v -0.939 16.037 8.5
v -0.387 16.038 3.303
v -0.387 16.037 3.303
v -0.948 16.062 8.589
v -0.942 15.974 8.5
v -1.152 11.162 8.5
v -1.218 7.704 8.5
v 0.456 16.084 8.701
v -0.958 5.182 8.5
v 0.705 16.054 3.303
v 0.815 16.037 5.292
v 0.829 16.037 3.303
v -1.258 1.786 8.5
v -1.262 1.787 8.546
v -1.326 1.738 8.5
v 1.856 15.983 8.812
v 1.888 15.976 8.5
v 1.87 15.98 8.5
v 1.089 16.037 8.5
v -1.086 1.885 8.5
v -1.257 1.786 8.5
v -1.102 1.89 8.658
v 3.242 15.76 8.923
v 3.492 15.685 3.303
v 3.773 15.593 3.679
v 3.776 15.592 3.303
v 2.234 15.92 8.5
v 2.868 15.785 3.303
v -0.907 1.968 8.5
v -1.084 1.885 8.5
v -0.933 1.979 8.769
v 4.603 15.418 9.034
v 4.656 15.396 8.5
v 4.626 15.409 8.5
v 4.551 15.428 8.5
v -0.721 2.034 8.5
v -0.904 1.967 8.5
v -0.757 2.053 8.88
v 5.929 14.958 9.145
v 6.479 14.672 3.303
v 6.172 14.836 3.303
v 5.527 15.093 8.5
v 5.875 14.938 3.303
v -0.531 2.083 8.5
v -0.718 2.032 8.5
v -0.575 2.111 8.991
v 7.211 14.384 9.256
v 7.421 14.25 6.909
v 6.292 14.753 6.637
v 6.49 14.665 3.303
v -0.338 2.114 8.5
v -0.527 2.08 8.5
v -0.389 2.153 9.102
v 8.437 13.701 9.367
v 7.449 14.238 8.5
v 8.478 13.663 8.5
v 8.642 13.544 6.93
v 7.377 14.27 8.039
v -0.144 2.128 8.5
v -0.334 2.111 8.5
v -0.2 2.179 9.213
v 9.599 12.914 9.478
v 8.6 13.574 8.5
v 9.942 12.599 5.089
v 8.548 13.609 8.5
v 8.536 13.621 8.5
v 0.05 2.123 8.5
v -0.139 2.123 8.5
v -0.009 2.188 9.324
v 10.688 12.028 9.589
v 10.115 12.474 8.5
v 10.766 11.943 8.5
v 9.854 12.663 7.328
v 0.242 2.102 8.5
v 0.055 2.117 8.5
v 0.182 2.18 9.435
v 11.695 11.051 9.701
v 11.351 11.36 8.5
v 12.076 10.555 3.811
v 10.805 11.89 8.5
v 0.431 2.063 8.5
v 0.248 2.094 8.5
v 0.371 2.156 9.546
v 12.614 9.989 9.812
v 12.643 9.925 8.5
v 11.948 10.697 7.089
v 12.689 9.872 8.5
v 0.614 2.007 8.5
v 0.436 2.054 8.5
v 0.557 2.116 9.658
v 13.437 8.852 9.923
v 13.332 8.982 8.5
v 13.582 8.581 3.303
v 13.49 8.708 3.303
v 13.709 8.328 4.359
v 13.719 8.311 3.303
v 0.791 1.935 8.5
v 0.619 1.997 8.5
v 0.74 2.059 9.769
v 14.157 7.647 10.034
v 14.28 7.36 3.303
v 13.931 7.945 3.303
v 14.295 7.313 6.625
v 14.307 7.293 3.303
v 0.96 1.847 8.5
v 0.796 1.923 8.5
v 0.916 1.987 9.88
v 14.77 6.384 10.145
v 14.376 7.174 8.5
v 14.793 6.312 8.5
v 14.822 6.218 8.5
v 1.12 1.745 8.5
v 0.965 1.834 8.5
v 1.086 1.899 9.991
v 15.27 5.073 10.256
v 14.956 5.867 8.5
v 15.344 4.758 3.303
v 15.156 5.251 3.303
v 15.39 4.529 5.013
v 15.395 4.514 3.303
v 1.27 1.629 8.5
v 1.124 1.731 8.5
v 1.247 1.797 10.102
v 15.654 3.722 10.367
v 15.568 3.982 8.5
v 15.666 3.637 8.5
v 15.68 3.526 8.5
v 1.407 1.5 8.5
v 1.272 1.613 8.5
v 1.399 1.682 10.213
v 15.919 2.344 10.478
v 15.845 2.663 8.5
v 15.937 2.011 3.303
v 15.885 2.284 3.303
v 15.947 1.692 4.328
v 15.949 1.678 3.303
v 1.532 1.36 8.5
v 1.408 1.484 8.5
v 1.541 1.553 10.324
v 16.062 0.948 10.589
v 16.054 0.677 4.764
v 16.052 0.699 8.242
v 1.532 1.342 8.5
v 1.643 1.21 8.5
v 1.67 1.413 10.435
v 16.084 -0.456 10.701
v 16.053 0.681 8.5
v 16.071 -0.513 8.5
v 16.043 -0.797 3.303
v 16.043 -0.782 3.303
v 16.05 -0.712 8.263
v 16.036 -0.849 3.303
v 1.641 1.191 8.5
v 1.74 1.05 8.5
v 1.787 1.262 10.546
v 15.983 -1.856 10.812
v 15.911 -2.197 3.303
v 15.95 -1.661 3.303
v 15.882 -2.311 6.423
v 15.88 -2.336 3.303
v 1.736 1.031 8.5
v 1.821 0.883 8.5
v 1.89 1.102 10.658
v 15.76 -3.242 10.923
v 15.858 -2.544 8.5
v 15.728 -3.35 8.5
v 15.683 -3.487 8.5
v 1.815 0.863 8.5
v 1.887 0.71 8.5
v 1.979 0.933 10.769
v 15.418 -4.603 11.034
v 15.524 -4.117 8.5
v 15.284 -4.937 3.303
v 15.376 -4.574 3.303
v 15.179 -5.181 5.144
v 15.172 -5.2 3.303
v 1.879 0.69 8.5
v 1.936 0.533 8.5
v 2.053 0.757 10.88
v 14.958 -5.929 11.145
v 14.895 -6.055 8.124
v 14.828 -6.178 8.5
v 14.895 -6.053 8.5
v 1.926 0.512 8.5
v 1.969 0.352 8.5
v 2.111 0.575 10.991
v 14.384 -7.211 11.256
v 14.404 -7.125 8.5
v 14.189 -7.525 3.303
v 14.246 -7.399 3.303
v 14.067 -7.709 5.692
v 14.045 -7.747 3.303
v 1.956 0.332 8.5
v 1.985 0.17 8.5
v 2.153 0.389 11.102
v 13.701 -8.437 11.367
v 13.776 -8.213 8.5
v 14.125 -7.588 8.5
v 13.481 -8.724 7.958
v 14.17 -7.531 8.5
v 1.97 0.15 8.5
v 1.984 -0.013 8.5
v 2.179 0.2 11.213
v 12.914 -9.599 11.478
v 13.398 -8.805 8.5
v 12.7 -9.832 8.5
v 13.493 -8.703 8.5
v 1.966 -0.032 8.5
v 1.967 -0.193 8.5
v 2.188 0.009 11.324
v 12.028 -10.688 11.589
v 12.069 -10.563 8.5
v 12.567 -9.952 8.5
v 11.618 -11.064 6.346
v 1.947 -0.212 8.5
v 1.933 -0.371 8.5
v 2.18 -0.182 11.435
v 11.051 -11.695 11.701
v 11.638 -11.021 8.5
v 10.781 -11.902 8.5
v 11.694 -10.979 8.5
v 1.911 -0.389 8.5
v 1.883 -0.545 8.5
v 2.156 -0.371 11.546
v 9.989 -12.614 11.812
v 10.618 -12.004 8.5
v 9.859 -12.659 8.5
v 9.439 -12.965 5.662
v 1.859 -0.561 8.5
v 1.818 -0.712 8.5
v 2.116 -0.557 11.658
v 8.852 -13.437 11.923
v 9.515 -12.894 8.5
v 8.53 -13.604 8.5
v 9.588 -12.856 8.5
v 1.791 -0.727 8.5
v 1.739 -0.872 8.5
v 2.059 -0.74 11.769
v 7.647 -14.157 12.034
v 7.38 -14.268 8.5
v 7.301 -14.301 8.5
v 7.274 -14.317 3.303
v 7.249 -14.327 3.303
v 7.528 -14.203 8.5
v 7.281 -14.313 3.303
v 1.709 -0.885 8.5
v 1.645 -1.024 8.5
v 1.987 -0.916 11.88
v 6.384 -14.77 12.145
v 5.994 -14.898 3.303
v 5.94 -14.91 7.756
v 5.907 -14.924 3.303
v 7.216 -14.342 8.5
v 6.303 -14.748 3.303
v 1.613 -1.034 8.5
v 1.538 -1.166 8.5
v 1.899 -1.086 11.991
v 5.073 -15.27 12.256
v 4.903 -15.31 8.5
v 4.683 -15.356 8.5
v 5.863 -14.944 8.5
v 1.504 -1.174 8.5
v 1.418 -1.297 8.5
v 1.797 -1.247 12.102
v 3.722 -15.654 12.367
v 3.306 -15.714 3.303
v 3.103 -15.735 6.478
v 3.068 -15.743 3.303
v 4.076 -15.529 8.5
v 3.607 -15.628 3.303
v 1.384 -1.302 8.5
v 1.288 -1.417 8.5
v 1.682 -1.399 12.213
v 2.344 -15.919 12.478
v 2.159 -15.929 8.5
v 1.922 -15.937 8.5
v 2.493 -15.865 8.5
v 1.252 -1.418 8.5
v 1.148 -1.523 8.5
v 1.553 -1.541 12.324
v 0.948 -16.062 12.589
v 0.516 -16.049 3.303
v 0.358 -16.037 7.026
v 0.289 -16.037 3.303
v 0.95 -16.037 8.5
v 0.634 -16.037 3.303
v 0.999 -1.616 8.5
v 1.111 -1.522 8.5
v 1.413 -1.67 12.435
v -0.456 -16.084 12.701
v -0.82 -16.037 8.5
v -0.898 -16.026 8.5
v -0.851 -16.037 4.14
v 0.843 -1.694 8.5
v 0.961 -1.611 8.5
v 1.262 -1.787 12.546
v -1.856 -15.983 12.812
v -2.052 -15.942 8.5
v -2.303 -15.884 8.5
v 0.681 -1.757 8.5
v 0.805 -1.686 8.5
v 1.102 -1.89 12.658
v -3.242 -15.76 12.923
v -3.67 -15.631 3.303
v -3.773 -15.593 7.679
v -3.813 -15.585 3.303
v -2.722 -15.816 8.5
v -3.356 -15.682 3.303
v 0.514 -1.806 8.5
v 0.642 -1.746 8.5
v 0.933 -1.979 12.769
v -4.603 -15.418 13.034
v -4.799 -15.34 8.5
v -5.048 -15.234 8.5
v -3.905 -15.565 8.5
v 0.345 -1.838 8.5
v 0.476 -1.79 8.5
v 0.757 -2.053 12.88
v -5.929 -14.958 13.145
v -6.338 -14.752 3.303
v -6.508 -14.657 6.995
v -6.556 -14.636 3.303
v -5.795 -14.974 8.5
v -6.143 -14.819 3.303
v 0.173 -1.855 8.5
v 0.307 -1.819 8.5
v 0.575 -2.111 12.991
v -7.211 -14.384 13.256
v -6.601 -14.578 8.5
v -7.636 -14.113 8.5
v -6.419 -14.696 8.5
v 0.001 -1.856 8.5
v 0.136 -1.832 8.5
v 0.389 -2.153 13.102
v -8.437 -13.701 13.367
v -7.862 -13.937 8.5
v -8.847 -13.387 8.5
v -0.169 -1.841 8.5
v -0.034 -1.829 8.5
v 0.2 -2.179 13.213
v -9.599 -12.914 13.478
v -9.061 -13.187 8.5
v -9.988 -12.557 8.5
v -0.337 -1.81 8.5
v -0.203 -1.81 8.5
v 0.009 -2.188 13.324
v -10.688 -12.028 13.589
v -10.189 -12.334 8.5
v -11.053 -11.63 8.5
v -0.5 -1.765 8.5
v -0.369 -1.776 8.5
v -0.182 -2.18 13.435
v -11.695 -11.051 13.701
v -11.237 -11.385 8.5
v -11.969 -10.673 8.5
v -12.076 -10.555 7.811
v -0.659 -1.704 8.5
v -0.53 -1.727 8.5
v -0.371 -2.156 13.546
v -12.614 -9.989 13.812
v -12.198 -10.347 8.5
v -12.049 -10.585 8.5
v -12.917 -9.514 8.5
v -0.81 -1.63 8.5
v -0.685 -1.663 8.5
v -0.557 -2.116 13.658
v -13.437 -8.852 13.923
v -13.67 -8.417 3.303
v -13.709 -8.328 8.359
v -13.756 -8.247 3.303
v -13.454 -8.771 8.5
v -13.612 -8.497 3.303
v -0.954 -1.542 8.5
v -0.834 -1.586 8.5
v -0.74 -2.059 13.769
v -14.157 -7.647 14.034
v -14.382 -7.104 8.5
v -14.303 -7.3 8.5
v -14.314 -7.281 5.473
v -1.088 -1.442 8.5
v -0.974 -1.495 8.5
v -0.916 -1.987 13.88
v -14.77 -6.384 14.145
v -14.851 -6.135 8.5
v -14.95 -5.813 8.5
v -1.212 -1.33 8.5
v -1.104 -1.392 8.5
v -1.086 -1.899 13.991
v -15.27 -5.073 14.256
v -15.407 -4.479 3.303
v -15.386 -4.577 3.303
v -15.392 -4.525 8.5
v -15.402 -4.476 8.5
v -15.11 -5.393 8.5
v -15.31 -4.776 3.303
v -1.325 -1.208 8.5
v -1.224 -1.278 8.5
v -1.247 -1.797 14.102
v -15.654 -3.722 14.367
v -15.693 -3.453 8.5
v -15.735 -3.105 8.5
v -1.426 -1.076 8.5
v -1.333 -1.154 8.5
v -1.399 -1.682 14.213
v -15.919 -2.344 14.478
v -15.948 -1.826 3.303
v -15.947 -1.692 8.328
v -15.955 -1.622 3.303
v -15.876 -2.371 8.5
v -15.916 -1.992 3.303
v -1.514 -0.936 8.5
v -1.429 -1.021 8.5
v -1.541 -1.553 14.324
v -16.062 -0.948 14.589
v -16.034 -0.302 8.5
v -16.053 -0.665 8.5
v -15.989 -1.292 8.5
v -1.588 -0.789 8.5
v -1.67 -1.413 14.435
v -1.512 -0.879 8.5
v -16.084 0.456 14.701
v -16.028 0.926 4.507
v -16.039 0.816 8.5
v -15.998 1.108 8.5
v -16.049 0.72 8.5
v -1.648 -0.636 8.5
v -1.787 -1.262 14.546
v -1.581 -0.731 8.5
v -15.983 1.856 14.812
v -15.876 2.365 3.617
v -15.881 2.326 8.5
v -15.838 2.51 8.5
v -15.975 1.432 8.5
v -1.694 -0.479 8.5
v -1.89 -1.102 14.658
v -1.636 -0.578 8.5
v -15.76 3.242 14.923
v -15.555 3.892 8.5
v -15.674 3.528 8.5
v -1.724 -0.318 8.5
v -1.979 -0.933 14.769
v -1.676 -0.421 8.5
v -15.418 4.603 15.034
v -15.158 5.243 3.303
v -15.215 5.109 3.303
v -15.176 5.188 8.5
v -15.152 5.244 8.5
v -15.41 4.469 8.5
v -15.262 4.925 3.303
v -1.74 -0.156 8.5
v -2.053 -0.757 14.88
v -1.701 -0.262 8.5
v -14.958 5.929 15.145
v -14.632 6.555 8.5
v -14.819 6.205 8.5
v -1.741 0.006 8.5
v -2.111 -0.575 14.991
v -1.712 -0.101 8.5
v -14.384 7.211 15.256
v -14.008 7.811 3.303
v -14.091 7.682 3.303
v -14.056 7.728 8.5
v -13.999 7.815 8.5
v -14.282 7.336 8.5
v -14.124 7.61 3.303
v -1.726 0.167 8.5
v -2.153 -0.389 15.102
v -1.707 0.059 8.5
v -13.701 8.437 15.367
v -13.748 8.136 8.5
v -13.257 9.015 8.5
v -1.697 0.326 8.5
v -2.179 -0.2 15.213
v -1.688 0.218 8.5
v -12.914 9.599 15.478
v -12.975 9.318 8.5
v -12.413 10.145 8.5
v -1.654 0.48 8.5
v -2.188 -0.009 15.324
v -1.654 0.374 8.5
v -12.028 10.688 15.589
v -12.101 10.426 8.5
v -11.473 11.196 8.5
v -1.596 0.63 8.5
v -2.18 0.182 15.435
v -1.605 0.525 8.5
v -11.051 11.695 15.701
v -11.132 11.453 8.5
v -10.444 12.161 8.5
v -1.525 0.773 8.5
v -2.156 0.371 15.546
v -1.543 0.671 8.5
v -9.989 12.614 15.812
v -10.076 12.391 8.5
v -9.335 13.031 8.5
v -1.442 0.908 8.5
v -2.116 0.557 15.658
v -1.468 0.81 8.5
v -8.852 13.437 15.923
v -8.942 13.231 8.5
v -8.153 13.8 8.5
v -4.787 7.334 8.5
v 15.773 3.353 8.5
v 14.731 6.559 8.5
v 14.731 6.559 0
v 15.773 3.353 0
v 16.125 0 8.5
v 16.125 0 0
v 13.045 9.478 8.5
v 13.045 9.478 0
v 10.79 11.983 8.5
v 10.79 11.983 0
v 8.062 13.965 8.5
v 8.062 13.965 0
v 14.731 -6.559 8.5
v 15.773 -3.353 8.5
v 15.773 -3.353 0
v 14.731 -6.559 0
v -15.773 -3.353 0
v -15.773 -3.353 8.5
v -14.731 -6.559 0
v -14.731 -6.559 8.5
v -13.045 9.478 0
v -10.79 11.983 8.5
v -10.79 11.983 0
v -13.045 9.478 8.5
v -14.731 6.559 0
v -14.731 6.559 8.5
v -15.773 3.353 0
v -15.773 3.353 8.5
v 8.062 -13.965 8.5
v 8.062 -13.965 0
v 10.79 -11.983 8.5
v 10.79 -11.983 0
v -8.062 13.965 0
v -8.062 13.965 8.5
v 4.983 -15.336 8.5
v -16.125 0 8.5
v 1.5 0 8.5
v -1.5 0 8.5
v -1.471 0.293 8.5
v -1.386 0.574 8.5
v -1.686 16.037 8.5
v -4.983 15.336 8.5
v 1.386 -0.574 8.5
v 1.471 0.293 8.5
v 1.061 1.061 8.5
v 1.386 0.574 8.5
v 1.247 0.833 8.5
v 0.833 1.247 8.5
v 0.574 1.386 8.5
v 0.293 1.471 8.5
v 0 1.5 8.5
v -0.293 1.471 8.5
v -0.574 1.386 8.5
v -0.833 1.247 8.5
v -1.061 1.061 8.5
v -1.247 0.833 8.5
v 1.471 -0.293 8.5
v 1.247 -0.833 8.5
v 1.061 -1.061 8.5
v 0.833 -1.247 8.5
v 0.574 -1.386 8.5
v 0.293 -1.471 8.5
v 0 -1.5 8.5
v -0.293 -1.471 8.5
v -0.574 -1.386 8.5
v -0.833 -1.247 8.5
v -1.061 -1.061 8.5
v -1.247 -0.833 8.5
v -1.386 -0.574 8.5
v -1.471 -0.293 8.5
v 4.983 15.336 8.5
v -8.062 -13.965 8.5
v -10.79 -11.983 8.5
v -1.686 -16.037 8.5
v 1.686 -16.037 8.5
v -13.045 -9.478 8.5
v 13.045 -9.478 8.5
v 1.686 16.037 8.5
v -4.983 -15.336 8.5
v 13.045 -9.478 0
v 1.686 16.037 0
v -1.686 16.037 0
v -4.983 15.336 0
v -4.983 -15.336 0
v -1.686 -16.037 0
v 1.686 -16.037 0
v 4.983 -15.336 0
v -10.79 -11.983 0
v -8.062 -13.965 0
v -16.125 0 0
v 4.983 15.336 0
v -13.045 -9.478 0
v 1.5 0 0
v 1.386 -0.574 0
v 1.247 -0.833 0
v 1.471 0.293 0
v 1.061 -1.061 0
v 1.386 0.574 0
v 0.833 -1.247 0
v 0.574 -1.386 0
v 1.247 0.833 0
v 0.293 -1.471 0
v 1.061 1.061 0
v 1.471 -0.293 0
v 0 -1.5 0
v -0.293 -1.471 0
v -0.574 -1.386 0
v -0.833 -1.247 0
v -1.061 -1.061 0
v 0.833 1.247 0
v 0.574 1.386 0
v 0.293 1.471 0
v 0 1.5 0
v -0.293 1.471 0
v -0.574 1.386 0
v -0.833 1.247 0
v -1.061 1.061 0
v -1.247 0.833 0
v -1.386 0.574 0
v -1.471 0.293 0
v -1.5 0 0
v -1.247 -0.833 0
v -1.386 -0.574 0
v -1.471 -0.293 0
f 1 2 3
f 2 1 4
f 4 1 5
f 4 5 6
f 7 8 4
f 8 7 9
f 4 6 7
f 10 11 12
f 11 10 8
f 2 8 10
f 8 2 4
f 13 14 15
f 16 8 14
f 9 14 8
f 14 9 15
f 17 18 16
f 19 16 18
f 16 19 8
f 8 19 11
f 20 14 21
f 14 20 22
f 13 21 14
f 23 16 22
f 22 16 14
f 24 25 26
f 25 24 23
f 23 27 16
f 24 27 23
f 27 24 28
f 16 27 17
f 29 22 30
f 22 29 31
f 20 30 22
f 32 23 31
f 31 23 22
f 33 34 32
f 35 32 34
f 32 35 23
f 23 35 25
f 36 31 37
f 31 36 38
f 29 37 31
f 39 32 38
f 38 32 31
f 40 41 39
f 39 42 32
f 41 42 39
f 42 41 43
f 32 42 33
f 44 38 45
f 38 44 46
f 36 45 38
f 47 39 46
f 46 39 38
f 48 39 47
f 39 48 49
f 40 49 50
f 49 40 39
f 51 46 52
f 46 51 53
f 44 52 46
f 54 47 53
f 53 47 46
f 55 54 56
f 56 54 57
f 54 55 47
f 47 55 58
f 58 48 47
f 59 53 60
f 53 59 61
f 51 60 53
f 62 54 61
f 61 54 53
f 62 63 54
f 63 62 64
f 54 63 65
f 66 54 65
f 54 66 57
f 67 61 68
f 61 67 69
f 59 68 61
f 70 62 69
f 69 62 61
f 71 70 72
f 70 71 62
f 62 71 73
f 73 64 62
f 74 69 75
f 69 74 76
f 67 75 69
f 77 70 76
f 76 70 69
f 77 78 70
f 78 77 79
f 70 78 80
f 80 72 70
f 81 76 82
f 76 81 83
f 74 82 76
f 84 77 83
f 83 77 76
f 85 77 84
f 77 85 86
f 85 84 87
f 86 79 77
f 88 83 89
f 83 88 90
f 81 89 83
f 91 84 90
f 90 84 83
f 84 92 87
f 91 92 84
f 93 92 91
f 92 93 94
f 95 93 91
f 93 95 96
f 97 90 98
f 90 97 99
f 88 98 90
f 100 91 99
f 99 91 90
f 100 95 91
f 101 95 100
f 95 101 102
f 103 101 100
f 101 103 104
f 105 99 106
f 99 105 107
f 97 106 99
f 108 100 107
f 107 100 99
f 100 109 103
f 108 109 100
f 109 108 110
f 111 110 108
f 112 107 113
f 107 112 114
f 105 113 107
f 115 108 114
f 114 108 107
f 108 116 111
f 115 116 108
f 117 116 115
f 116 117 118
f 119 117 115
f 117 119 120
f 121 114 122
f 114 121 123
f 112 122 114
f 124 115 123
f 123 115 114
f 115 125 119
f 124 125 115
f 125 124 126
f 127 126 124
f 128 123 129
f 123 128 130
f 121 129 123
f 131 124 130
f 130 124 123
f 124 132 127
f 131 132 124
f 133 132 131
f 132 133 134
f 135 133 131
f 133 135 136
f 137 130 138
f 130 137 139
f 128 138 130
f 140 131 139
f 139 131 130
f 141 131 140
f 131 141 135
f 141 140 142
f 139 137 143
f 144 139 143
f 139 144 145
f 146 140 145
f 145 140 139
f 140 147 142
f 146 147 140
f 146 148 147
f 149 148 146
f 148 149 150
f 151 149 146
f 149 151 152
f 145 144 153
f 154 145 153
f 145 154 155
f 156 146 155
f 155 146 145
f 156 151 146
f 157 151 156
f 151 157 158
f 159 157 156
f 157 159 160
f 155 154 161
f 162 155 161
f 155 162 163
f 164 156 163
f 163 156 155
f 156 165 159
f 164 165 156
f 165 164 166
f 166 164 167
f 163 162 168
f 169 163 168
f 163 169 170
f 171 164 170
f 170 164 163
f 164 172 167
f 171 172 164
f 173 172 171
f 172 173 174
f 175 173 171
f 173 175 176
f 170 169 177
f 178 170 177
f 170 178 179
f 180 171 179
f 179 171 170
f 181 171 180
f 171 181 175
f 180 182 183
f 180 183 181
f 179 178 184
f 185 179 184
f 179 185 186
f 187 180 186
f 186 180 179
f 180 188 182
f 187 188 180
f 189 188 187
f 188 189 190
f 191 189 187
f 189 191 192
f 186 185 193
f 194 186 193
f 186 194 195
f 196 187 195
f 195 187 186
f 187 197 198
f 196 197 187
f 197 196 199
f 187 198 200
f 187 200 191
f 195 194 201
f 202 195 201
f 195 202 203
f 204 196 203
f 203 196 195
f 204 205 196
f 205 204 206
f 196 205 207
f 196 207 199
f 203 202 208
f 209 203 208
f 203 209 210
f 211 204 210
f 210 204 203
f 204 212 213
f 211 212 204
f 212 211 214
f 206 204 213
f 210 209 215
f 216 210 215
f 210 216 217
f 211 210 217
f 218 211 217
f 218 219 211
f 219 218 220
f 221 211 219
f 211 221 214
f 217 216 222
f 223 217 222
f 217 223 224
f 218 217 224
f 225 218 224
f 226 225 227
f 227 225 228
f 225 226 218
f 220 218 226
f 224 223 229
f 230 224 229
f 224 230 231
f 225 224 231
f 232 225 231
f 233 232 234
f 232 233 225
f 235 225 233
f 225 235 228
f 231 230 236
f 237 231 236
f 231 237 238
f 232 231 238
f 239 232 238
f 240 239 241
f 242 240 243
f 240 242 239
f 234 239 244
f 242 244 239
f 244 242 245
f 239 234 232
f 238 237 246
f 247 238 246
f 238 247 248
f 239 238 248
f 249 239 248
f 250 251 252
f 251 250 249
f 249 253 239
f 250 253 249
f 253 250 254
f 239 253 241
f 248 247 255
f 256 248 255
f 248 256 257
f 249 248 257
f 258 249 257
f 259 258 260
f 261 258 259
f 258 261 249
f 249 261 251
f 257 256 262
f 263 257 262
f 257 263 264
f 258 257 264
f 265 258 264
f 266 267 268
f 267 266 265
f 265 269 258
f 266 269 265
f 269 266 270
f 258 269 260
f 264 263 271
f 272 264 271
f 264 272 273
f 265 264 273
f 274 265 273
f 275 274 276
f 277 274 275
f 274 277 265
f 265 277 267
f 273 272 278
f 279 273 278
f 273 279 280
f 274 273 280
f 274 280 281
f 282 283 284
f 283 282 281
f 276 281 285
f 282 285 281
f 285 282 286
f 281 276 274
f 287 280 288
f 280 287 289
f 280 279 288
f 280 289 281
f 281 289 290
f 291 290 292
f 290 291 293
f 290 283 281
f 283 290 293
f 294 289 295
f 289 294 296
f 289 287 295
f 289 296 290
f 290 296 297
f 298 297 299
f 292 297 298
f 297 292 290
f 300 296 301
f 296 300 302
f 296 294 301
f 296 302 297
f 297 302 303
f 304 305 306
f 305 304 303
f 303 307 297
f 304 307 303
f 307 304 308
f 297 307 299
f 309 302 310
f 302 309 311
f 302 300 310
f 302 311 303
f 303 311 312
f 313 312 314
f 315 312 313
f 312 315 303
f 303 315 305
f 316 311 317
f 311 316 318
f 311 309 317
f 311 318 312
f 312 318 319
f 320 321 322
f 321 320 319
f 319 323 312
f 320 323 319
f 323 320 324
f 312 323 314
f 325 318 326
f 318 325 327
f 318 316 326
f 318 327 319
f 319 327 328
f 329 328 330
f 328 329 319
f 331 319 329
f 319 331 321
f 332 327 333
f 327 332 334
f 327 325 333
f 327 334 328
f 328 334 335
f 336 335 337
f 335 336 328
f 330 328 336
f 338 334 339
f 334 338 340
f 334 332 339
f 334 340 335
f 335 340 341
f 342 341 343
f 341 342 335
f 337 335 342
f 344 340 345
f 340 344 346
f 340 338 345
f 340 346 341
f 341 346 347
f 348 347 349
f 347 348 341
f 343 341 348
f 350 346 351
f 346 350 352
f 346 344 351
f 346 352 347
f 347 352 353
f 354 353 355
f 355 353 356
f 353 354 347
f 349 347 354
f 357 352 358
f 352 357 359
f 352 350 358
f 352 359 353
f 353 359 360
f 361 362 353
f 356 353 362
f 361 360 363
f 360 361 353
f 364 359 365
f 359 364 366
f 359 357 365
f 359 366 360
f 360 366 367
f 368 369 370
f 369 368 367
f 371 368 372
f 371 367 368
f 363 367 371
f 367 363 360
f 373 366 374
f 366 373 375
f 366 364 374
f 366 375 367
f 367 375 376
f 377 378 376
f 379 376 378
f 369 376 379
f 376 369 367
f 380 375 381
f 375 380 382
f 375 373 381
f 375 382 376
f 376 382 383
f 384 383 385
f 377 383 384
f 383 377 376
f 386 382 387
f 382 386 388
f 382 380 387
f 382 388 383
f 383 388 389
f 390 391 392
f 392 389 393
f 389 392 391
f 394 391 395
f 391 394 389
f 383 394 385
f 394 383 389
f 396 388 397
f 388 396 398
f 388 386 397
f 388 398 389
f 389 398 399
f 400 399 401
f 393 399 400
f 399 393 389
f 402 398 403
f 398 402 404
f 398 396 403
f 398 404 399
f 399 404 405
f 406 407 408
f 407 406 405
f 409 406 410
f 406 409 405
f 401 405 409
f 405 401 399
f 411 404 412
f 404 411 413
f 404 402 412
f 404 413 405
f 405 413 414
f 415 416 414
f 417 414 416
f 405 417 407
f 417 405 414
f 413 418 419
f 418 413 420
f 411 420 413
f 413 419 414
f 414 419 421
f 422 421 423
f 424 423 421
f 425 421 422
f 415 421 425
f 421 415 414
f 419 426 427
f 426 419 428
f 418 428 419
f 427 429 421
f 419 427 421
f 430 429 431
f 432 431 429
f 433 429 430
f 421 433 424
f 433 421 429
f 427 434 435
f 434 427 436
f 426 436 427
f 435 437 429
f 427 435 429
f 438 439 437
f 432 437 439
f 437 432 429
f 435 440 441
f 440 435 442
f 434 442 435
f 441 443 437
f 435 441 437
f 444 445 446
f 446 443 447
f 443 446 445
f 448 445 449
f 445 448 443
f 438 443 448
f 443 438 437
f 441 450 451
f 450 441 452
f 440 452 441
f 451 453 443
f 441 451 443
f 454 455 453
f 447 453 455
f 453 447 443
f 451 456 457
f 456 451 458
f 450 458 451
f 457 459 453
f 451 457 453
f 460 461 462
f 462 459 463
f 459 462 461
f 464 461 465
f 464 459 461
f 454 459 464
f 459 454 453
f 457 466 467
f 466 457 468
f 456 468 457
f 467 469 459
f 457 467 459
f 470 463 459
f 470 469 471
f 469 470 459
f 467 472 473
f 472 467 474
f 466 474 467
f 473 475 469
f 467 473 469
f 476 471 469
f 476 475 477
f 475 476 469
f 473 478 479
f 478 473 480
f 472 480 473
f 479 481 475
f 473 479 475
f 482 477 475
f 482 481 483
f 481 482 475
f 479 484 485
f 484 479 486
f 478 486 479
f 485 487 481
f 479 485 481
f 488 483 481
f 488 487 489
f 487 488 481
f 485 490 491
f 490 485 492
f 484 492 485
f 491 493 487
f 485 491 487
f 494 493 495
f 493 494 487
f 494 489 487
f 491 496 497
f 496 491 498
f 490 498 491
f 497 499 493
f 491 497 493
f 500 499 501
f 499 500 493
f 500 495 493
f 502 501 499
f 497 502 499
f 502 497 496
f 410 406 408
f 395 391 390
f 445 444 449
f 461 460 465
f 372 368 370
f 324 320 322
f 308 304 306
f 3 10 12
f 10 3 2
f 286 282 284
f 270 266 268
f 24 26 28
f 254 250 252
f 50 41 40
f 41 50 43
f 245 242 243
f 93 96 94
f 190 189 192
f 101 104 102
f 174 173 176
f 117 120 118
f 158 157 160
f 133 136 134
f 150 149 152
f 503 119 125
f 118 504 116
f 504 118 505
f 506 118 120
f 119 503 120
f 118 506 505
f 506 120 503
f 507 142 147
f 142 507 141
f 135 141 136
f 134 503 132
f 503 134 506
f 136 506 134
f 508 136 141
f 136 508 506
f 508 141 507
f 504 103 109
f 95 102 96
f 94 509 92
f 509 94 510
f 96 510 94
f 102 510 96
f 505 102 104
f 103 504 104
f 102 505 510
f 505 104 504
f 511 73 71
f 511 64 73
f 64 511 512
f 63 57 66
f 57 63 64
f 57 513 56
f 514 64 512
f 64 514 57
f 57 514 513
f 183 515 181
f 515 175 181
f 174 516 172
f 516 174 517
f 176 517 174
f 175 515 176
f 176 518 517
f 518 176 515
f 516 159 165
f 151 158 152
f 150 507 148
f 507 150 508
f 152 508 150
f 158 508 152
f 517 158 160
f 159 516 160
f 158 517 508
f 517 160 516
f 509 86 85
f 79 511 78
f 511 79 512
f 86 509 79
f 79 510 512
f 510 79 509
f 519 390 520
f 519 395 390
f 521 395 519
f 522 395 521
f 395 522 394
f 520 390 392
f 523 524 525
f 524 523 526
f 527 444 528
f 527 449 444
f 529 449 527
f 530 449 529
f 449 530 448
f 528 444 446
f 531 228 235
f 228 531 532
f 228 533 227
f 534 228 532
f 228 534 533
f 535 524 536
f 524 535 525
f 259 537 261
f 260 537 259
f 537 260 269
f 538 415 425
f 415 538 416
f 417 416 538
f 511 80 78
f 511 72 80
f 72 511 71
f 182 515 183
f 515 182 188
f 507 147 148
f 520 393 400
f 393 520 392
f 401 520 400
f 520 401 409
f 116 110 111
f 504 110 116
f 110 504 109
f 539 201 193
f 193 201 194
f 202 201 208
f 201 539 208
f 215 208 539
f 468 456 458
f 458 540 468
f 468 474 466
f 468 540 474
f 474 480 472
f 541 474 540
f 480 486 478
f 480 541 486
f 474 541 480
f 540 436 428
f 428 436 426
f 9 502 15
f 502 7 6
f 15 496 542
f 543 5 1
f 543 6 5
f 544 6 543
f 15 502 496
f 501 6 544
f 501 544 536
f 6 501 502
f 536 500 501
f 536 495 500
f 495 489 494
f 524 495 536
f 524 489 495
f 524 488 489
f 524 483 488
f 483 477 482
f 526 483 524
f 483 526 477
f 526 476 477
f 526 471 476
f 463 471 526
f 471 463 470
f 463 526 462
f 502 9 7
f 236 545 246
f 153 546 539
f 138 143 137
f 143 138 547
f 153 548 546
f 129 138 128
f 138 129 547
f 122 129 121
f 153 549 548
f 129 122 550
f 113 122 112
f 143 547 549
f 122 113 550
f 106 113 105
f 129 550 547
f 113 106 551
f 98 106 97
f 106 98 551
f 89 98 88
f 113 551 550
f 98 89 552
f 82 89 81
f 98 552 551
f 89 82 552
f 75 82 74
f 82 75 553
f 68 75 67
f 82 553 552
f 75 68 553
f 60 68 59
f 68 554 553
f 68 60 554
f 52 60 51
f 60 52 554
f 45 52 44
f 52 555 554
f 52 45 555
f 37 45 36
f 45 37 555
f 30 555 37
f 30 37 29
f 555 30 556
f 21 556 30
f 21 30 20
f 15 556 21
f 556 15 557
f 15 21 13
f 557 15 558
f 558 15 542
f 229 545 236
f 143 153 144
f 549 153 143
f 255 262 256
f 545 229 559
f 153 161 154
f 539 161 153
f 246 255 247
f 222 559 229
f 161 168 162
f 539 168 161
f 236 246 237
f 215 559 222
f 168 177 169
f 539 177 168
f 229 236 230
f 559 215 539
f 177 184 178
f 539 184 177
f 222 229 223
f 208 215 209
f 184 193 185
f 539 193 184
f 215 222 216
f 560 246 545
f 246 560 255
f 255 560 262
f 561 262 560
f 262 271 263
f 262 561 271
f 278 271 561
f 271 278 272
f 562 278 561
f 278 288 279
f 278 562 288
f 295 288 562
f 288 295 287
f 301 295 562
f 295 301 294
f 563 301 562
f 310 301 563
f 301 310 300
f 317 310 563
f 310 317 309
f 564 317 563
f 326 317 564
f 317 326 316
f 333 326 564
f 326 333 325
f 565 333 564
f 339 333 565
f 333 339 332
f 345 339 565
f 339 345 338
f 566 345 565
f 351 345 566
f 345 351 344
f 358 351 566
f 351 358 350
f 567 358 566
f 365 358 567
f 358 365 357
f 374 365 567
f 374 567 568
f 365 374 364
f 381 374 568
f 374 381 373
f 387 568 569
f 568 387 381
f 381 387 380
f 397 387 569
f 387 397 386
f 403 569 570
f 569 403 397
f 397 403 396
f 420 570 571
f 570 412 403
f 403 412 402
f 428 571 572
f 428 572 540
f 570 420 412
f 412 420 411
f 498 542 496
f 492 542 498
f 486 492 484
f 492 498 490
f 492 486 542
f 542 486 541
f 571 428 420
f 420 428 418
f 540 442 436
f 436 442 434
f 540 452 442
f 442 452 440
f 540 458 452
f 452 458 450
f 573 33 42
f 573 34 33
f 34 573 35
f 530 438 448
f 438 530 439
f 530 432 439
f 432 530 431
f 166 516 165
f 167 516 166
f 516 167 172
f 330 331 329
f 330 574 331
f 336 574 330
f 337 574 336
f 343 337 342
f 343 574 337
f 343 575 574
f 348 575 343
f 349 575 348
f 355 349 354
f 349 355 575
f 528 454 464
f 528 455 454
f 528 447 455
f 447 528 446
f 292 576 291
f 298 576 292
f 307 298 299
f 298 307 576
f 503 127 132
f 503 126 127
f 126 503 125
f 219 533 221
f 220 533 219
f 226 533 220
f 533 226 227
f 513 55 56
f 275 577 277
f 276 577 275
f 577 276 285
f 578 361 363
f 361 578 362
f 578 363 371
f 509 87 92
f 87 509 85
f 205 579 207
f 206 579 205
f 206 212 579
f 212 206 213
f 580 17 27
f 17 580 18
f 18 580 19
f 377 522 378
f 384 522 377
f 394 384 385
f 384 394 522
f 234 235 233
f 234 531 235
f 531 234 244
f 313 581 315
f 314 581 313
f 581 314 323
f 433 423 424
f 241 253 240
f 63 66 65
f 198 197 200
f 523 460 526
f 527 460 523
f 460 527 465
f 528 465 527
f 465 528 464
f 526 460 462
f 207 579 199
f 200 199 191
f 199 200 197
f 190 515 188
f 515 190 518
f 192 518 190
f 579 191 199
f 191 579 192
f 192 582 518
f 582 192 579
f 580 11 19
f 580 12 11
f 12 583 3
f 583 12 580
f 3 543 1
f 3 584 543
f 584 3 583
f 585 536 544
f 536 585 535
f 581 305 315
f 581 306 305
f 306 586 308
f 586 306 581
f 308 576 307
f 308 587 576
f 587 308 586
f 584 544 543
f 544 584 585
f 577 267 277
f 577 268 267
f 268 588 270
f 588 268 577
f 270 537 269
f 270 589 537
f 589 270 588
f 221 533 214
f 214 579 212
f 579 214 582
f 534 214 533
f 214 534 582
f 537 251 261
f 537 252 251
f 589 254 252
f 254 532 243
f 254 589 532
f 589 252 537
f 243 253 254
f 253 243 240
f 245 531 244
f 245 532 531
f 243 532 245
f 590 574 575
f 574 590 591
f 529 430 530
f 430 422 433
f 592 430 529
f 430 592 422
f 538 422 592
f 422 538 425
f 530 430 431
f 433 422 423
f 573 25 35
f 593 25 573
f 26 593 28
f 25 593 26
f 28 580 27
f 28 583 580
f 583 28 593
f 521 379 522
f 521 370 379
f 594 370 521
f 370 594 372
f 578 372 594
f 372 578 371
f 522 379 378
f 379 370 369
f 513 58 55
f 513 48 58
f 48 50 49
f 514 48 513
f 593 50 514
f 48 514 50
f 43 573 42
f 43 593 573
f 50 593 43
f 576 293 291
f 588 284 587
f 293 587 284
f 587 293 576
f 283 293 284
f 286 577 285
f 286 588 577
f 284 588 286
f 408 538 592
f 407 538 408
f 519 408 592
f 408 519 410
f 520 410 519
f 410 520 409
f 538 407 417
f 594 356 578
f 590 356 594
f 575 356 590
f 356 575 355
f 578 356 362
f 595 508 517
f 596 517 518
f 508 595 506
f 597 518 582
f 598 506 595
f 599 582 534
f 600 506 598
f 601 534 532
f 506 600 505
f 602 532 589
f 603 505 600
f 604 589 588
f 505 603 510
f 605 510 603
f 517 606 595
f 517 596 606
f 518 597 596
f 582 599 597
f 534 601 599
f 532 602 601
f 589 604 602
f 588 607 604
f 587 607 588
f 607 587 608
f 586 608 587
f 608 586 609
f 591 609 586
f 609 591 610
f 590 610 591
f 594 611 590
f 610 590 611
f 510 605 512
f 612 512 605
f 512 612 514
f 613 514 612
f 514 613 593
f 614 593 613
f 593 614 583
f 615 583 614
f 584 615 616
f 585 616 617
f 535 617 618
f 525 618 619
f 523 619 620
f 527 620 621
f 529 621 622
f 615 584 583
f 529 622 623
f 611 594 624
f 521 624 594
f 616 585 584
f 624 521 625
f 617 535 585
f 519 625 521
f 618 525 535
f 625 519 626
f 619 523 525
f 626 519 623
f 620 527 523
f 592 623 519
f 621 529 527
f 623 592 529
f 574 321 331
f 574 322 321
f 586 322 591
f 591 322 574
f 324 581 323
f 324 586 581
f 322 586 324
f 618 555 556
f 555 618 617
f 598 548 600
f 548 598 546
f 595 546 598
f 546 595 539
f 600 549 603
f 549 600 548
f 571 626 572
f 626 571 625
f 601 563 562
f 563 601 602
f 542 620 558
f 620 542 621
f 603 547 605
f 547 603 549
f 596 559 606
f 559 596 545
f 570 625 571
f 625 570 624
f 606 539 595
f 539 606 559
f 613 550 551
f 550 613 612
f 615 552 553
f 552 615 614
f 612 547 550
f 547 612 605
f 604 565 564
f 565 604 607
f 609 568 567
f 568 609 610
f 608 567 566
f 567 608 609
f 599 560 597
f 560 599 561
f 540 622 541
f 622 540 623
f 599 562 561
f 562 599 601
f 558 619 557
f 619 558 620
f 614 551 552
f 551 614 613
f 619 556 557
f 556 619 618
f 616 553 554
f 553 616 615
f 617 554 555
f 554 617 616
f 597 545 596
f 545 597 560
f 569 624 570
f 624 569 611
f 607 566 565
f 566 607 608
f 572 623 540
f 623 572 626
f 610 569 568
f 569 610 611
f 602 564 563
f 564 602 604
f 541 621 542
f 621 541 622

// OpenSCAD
// file: spring.scad
// tube example - a spring
// orginal endless tube code by nop head
// requires openscad snapshot  eg.
//      http://files.openscad.org/OpenSCAD-2014.01.14-x86-32-Installer.exe
// with concat enabled  in edit/preferences/features 




// radius of wire 
Wire_radius=13;

// radius of spring
Radius= 35/2-Wire_radius/2+1;

// Pitch of spring - distance between coils
Pitch= 8;

//number of coils
Coils = 0.92;

// Spring Resolution - in degrees
Step=5;

// Wire resolution
lados= 5;

function m_translate(v) = [ [1, 0, 0, 0],
                            [0, 1, 0, 0],
                            [0, 0, 1, 0],
                            [v.x, v.y, v.z, 1  ] ];
                            
function m_rotate(v) =  [ [1,  0,         0,        0],
                          [0,  cos(v.x),  sin(v.x), 0],
                          [0, -sin(v.x),  cos(v.x), 0],
                          [0,  0,         0,        1] ]
                      * [ [ cos(v.y), 0,  -sin(v.y), 0],
                          [0,         1,  0,        0],
                          [ sin(v.y), 0,  cos(v.y), 0],
                          [0,         0,  0,        1] ]
                      * [ [ cos(v.z),  sin(v.z), 0, 0],
                          [-sin(v.z),  cos(v.z), 0, 0],
                          [ 0,         0,        1, 0],
                          [ 0,         0,        0, 1] ];
                            
function vec3(v) = [v.x, v.y, v.z];
function transform(v, m)  = vec3([v.x, v.y, v.z, 1] * m);
                            
function orientate(p0, p) =               
              m_rotate([0, atan2(sqrt(pow(p[0], 2) + pow(p[1], 2)), p[2]), 0])  
            * m_rotate([0, 0, atan2(p[1], p[0])]) 
            * m_translate(p0);

function circle_points(r = 1, a = 0) = 
    a < 360
       ? concat([[r * sin(a),  r * cos(a),0]], circle_points(r, a + 360 / lados)) 
       : [] ;

function loop_points(step, end , t = 0) = 
    t <= end 
       ? concat([f(t)], loop_points(step, end, t + step)) 
       : [] ;

function transform_points(list, matrix, i = 0) = 
    i < len(list) 
       ? concat([ transform(list[i], matrix) ], transform_points(list, matrix, i + 1))
       : [];

function tube_points(loop_points, section_points, i=0) =
    i < len(loop_points)-1
       ? concat(
           transform_points(
                 section_points, 
                 orientate(loop_points[i],(loop_points[i + 1]- loop_points[i])/2)),
          tube_points(loop_points,section_points, i + 1)
        )
       : []    // in a closed loop, this segment connects to the start
;

function tube_faces(facets, s, i = 0) =  
     i < facets  
       ?  concat([[s * facets + i, 
                   s * facets + (i + 1) % facets, 
                  (s + 1) * facets + (i + 1) % facets, 
                  (s + 1) * facets + i]
                ], 
                tube_faces(facets, s, i + 1))
      : [];
          
function tube_end(facets, s, i = 0) =  
     i < facets  
       ?  concat( [s * facets + i], tube_end(facets, s, i+1))
       : [];  
 
                                       
function loop_faces(segs,facets, j = 0) = 
     j < segs
        ? concat(tube_faces(facets,  j), loop_faces(segs, facets, j + 1)) 
        : [];

function loop_all_faces(segs,facets) =
     concat ([reverse(tube_end(facets,0))], // direction changed here 
              loop_faces(segs,facets),
             [tube_end(facets,segs)]
            );

function reverse_r(v,n) =
      n == 0 
        ? [v[0]]
        : concat([v[n]],reverse_r(v,n-1))
;
function reverse(v) = reverse_r(v, len(v)-1);


function circle_points(r = 1, a = 0) = 
    a < 360
       ? concat([[r * sin(a+17),  r * cos(a),0]], circle_points(r, a + 360 / lados)) 
       : [] ;

function f(t) =  [Radius *sin(t),Radius * cos(t) ,Pitch * t/360 ];

function loop_points(step, end, t = 0) = 
    t <= end 
       ? concat([f(t)], loop_points(step, end, t + step )) 
       : [] ;
module superficie(){
//section_points = circle_points(Wire_radius, lados=20);
section_points = circle_points(Wire_radius, 360/lados);
//echo(section_points);

loop_points = loop_points(Step ,360* Coils + Step);
// echo(loop_points);
tube_points = tube_points(loop_points,section_points);
// echo(tube_points);

faces = loop_all_faces(len(loop_points)-2, len(section_points));
// echo(faces);
polyhedron(points = tube_points, faces = faces);
    lados=128;
}
//superficie();
// main file
include <spring.scad>
//cylinder(d=35,h=8+5);
difference(){
union(){
translate([0,0,-2])
difference(){
superficie();
translate([0,0,-12.1973])
cube(35,center=true);
}
translate([0,0,0])
cylinder(d=32.25,h=8.5);
}

translate([0,0,-5])
cylinder(d=3,h=30,$fn=32);
}
